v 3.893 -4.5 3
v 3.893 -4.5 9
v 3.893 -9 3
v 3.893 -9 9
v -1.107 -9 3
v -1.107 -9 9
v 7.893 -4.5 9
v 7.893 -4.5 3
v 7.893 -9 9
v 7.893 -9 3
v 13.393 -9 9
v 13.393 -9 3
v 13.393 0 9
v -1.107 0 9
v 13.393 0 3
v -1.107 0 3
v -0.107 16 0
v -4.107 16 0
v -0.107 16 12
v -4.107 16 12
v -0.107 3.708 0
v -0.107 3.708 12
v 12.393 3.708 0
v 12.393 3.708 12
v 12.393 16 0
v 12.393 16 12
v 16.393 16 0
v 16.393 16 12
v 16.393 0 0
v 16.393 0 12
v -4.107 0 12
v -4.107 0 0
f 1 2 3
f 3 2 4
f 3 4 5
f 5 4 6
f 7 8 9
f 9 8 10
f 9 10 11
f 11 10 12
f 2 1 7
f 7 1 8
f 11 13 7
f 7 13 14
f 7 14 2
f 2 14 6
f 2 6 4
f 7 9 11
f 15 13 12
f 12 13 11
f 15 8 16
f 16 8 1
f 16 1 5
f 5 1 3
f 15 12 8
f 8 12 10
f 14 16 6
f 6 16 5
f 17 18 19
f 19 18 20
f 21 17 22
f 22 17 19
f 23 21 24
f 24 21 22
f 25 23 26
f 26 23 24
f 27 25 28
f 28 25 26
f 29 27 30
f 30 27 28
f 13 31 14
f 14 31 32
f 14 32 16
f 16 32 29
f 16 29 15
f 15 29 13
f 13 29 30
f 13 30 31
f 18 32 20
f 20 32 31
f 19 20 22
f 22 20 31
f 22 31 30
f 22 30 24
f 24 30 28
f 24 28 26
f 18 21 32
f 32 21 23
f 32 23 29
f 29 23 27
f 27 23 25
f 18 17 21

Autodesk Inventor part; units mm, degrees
ref_plane "YZ Plane" through (0, 0, 0) normal (1, 0, 0) x (0, 1, 0)
ref_plane "XZ Plane" through (0, 0, 0) normal (0, 1, 0) x (-1, 0, 0)
ref_plane "XY Plane" through (0, 0, 0) normal (0, 0, 1) x (1, 0, 0)
sketch "Sketch1" plane through (0, 0, 0) normal (0, 0, 1) x (1, 0, 0)
  line L0 (-0.1073, 3.7083) -> (12.3927, 3.7083)
  line L1 (12.3927, 3.7083) -> (12.3927, 0)
  line L2 (12.3927, 0) -> (-0.1073, 0)
  line L3 (-0.1073, 0) -> (-0.1073, 3.7083)
  line L4 (-0.1073, 0) -> (-4.1073, 0)
  line L5 (-4.1073, 0) -> (-4.1073, 16)
  line L6 (-4.1073, 16) -> (-0.1073, 16)
  line L7 (-0.1073, 16) -> (-0.1073, 0)
  line L8 (12.3927, 0) -> (16.3927, 0)
  line L9 (16.3927, 0) -> (16.3927, 16)
  line L10 (16.3927, 16) -> (12.3927, 16)
  line L11 (12.3927, 16) -> (12.3927, 0)
  point P0 (0, 0)
  dimension "d0" = 12.5
  dimension "d1" = 16
  dimension "d2" = 4
  dimension "d3" = 4
extrude "Extrusion1" add sketch "Sketch1" along normal blind 12
sketch "Sketch2" plane through (-4.1073, 0, 0) normal (0, -1, 0) x (1, 0, 0)
  line L0 (0, 12) -> (20.5, 12) projected
  line L1 (0, 0) -> (20.5, 0) projected
  line L2 (0, 0) -> (0, 12) projected
  point P0 (4.1073, 0)
sketch "Sketch3" plane through (-4.1073, 0, 0) normal (0, -1, 0) x (1, 0, 0)
  line L0 (17.5, 3) -> (17.5, 9)
  line L1 (0, 0) -> (20.5, 0) projected
  line L2 (0, 0) -> (0, 12) projected
  line L3 (20.5, 0) -> (20.5, 12) projected
  line L4 (17.5, 3) -> (3, 3)
  line L5 (3, 3) -> (3, 9)
  line L6 (3, 9) -> (17.5, 9)
  line L7 (17.5, 9) -> (17.5, 3)
  point P0 (4.1073, 0)
  dimension "d20" = 3
  dimension "d21" = 3
extrude "Extrusion4" add sketch "Sketch3" along normal blind 4.5
sketch "Sketch5" plane through (-4.1073, -4.5, 0) normal (0, -1, 0) x (1, 0, 0)
  line L0 (3, 3) -> (17.5, 3) projected
  line L1 (3, 9) -> (17.5, 9) projected
  line L2 (17.5, 3) -> (12, 3)
  line L3 (12, 3) -> (12, 9)
  line L4 (12, 9) -> (17.5, 9)
  line L5 (17.5, 9) -> (17.5, 3)
  line L6 (3, 3) -> (8, 3)
  line L7 (8, 3) -> (8, 9)
  line L8 (8, 9) -> (3, 9)
  line L9 (3, 9) -> (3, 3)
  point P0 (4.1073, 0)
  dimension "d24" = 4
  dimension "d25" = 5.5
extrude "Extrusion5" add sketch "Sketch5" along normal blind 4.5 contours L9 L1 L7 L0 | L3 L1 L5 L0
properties part number "servo_motor_clip"
